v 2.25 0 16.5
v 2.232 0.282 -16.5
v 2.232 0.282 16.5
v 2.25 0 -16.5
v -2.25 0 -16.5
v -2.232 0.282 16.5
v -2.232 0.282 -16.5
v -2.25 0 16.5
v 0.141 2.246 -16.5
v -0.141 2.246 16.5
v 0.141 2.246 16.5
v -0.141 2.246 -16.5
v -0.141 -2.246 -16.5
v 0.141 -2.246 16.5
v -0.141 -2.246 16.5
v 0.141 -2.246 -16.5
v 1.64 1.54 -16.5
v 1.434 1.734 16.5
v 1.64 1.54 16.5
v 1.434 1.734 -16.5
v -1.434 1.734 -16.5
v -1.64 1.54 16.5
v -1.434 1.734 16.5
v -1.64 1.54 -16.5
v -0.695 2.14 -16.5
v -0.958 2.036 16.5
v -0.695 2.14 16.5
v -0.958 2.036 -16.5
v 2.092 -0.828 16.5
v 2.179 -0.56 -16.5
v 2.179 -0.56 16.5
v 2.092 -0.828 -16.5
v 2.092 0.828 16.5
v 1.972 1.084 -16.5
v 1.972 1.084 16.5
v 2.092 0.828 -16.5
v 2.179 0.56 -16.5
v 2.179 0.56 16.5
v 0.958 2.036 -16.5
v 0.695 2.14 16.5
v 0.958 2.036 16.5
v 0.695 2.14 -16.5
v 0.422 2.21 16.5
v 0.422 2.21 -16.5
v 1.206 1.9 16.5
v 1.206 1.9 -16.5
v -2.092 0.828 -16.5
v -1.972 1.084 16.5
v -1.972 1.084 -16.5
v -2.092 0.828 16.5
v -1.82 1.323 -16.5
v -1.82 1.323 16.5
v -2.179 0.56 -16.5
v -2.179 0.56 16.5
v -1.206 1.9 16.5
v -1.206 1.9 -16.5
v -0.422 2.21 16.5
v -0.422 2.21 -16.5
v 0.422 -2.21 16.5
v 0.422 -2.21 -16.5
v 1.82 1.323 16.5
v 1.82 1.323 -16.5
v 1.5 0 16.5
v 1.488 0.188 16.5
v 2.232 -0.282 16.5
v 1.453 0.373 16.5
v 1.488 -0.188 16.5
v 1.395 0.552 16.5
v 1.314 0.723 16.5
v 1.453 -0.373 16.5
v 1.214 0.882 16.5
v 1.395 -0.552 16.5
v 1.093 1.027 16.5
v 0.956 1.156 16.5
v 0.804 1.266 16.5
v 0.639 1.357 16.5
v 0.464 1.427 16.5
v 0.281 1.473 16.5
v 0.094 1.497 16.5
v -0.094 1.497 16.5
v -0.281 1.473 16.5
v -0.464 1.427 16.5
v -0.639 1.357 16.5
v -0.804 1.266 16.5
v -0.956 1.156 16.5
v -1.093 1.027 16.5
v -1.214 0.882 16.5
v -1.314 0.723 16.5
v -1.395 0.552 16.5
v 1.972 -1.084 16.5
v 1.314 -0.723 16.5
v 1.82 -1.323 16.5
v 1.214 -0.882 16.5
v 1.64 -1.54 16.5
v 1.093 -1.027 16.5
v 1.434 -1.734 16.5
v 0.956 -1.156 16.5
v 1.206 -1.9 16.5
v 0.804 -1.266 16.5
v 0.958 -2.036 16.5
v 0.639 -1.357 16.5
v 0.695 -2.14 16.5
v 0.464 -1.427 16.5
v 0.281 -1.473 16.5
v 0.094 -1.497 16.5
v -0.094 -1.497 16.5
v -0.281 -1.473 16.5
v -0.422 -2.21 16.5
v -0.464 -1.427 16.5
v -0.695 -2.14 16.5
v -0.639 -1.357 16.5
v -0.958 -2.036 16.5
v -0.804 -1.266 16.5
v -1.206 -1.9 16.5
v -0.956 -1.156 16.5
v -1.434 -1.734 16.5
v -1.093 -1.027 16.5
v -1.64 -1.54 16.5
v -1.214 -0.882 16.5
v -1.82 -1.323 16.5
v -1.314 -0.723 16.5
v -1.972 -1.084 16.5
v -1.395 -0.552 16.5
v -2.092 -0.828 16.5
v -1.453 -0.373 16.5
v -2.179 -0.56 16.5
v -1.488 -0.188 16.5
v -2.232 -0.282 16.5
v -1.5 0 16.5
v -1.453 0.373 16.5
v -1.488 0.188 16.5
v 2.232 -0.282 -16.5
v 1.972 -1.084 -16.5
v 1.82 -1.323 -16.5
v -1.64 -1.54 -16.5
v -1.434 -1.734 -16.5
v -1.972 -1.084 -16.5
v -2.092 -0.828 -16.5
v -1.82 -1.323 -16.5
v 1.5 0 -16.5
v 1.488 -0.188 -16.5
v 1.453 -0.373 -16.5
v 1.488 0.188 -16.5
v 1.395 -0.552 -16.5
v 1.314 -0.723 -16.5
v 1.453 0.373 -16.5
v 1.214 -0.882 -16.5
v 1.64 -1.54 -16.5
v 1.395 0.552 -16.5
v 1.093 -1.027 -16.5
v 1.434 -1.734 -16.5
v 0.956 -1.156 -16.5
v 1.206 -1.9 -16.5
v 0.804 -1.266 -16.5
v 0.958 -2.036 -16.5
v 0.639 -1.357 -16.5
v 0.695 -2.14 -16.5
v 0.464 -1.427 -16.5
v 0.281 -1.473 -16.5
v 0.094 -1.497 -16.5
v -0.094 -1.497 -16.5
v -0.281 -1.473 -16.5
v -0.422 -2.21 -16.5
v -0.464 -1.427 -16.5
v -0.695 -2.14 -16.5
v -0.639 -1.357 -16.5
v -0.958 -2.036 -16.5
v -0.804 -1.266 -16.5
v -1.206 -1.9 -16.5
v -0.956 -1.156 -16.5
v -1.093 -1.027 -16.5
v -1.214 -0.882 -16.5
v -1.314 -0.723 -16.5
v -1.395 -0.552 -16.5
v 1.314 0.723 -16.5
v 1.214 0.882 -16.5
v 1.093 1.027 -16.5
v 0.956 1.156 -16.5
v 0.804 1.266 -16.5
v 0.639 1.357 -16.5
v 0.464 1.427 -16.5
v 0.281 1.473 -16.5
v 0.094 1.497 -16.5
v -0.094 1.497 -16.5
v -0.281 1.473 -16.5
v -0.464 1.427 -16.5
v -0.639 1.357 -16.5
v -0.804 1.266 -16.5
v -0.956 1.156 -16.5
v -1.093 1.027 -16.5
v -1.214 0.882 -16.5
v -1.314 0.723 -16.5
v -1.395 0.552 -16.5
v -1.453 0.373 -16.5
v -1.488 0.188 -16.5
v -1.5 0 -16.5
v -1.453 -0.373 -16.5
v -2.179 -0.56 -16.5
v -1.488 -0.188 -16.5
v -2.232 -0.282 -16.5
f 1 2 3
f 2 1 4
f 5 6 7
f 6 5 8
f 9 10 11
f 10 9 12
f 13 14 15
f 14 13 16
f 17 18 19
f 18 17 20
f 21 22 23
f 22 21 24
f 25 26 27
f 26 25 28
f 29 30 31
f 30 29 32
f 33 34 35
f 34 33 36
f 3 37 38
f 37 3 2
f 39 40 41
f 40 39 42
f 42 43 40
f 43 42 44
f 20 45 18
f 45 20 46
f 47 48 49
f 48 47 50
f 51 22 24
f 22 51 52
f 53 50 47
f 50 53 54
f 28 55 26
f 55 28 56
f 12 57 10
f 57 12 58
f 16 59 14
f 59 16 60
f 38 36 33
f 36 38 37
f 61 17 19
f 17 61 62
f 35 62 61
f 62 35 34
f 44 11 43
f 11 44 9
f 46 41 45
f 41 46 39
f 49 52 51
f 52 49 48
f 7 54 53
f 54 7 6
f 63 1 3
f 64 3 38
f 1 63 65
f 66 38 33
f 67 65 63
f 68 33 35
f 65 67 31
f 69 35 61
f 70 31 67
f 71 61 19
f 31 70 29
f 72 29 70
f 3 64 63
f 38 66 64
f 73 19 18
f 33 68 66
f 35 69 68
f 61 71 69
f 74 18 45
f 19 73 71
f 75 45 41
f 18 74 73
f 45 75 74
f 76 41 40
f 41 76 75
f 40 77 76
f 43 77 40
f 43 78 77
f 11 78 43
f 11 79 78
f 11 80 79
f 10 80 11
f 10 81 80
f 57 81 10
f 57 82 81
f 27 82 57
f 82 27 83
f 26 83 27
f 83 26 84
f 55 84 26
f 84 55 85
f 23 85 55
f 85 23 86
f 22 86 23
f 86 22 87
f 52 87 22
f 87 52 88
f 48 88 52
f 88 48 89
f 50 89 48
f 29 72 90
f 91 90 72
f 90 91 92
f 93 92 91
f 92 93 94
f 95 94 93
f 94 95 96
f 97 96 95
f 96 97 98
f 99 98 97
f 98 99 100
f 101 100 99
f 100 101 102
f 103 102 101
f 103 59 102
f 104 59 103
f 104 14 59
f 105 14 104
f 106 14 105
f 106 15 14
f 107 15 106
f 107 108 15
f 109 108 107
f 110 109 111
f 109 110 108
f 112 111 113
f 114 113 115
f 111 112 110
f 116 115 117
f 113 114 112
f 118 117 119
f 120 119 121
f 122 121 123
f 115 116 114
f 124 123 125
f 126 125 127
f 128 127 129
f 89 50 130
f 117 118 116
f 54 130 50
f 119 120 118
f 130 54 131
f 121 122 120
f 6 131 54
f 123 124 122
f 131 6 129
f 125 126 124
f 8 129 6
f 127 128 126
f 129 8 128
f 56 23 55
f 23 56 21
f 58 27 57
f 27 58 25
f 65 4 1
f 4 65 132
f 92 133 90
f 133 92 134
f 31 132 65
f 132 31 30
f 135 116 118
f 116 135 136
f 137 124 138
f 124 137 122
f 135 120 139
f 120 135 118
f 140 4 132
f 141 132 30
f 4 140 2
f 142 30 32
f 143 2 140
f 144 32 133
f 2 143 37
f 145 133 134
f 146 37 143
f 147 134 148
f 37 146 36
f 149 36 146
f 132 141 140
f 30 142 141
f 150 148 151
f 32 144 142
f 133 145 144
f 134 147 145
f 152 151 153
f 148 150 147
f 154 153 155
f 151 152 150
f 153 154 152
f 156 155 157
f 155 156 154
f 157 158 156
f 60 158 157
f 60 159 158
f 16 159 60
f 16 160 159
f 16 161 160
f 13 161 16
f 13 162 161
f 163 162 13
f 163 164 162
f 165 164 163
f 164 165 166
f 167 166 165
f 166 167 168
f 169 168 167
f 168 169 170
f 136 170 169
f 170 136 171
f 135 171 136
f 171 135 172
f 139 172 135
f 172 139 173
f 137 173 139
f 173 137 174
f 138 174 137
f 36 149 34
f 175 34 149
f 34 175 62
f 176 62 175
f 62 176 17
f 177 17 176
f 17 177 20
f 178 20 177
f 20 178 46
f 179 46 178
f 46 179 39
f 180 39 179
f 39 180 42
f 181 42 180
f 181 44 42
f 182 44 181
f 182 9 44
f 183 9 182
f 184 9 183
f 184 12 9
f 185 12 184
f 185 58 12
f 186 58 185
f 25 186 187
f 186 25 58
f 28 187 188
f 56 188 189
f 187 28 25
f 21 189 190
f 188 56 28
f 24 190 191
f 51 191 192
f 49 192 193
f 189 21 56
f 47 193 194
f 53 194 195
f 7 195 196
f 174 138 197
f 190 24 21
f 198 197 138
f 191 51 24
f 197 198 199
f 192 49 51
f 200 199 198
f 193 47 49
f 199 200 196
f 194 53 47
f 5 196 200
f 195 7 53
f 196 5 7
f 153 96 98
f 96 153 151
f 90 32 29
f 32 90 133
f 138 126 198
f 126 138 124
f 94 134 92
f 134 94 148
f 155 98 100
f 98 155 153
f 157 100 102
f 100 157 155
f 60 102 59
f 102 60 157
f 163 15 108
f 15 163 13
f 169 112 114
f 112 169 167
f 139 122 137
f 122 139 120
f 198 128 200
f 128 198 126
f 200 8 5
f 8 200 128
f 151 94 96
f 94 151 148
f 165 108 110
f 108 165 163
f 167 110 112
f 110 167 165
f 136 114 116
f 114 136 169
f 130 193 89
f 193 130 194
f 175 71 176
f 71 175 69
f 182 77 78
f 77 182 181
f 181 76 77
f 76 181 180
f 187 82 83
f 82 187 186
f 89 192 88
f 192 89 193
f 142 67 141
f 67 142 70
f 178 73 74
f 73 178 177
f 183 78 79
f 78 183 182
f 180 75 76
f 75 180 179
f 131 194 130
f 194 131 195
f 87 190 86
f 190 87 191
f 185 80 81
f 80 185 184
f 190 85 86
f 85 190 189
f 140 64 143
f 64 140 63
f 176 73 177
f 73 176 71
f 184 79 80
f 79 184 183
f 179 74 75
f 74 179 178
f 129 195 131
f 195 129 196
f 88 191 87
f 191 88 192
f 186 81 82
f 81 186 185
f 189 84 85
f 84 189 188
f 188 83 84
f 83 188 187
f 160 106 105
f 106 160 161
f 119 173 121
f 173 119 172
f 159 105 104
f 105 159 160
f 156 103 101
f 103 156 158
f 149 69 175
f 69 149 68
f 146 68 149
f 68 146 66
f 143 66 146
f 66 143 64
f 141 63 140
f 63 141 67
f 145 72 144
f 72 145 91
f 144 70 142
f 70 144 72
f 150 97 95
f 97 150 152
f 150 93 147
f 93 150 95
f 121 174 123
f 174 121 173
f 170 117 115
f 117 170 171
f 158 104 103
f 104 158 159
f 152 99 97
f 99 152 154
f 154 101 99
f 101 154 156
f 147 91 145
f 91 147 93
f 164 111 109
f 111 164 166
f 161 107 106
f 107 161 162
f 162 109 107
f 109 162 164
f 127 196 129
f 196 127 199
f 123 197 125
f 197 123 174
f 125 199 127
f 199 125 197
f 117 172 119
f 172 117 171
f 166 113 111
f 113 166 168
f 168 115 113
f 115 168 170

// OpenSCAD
$fn = 50;


difference() {
	union() {
		translate(v = [0, 0, -16.5000000000]) {
			cylinder(h = 33, r = 2.2500000000);
		}
	}
	union() {
		translate(v = [0, 0, -100.0000000000]) {
			cylinder(h = 200, r = 1.5000000000);
		}
	}
}
